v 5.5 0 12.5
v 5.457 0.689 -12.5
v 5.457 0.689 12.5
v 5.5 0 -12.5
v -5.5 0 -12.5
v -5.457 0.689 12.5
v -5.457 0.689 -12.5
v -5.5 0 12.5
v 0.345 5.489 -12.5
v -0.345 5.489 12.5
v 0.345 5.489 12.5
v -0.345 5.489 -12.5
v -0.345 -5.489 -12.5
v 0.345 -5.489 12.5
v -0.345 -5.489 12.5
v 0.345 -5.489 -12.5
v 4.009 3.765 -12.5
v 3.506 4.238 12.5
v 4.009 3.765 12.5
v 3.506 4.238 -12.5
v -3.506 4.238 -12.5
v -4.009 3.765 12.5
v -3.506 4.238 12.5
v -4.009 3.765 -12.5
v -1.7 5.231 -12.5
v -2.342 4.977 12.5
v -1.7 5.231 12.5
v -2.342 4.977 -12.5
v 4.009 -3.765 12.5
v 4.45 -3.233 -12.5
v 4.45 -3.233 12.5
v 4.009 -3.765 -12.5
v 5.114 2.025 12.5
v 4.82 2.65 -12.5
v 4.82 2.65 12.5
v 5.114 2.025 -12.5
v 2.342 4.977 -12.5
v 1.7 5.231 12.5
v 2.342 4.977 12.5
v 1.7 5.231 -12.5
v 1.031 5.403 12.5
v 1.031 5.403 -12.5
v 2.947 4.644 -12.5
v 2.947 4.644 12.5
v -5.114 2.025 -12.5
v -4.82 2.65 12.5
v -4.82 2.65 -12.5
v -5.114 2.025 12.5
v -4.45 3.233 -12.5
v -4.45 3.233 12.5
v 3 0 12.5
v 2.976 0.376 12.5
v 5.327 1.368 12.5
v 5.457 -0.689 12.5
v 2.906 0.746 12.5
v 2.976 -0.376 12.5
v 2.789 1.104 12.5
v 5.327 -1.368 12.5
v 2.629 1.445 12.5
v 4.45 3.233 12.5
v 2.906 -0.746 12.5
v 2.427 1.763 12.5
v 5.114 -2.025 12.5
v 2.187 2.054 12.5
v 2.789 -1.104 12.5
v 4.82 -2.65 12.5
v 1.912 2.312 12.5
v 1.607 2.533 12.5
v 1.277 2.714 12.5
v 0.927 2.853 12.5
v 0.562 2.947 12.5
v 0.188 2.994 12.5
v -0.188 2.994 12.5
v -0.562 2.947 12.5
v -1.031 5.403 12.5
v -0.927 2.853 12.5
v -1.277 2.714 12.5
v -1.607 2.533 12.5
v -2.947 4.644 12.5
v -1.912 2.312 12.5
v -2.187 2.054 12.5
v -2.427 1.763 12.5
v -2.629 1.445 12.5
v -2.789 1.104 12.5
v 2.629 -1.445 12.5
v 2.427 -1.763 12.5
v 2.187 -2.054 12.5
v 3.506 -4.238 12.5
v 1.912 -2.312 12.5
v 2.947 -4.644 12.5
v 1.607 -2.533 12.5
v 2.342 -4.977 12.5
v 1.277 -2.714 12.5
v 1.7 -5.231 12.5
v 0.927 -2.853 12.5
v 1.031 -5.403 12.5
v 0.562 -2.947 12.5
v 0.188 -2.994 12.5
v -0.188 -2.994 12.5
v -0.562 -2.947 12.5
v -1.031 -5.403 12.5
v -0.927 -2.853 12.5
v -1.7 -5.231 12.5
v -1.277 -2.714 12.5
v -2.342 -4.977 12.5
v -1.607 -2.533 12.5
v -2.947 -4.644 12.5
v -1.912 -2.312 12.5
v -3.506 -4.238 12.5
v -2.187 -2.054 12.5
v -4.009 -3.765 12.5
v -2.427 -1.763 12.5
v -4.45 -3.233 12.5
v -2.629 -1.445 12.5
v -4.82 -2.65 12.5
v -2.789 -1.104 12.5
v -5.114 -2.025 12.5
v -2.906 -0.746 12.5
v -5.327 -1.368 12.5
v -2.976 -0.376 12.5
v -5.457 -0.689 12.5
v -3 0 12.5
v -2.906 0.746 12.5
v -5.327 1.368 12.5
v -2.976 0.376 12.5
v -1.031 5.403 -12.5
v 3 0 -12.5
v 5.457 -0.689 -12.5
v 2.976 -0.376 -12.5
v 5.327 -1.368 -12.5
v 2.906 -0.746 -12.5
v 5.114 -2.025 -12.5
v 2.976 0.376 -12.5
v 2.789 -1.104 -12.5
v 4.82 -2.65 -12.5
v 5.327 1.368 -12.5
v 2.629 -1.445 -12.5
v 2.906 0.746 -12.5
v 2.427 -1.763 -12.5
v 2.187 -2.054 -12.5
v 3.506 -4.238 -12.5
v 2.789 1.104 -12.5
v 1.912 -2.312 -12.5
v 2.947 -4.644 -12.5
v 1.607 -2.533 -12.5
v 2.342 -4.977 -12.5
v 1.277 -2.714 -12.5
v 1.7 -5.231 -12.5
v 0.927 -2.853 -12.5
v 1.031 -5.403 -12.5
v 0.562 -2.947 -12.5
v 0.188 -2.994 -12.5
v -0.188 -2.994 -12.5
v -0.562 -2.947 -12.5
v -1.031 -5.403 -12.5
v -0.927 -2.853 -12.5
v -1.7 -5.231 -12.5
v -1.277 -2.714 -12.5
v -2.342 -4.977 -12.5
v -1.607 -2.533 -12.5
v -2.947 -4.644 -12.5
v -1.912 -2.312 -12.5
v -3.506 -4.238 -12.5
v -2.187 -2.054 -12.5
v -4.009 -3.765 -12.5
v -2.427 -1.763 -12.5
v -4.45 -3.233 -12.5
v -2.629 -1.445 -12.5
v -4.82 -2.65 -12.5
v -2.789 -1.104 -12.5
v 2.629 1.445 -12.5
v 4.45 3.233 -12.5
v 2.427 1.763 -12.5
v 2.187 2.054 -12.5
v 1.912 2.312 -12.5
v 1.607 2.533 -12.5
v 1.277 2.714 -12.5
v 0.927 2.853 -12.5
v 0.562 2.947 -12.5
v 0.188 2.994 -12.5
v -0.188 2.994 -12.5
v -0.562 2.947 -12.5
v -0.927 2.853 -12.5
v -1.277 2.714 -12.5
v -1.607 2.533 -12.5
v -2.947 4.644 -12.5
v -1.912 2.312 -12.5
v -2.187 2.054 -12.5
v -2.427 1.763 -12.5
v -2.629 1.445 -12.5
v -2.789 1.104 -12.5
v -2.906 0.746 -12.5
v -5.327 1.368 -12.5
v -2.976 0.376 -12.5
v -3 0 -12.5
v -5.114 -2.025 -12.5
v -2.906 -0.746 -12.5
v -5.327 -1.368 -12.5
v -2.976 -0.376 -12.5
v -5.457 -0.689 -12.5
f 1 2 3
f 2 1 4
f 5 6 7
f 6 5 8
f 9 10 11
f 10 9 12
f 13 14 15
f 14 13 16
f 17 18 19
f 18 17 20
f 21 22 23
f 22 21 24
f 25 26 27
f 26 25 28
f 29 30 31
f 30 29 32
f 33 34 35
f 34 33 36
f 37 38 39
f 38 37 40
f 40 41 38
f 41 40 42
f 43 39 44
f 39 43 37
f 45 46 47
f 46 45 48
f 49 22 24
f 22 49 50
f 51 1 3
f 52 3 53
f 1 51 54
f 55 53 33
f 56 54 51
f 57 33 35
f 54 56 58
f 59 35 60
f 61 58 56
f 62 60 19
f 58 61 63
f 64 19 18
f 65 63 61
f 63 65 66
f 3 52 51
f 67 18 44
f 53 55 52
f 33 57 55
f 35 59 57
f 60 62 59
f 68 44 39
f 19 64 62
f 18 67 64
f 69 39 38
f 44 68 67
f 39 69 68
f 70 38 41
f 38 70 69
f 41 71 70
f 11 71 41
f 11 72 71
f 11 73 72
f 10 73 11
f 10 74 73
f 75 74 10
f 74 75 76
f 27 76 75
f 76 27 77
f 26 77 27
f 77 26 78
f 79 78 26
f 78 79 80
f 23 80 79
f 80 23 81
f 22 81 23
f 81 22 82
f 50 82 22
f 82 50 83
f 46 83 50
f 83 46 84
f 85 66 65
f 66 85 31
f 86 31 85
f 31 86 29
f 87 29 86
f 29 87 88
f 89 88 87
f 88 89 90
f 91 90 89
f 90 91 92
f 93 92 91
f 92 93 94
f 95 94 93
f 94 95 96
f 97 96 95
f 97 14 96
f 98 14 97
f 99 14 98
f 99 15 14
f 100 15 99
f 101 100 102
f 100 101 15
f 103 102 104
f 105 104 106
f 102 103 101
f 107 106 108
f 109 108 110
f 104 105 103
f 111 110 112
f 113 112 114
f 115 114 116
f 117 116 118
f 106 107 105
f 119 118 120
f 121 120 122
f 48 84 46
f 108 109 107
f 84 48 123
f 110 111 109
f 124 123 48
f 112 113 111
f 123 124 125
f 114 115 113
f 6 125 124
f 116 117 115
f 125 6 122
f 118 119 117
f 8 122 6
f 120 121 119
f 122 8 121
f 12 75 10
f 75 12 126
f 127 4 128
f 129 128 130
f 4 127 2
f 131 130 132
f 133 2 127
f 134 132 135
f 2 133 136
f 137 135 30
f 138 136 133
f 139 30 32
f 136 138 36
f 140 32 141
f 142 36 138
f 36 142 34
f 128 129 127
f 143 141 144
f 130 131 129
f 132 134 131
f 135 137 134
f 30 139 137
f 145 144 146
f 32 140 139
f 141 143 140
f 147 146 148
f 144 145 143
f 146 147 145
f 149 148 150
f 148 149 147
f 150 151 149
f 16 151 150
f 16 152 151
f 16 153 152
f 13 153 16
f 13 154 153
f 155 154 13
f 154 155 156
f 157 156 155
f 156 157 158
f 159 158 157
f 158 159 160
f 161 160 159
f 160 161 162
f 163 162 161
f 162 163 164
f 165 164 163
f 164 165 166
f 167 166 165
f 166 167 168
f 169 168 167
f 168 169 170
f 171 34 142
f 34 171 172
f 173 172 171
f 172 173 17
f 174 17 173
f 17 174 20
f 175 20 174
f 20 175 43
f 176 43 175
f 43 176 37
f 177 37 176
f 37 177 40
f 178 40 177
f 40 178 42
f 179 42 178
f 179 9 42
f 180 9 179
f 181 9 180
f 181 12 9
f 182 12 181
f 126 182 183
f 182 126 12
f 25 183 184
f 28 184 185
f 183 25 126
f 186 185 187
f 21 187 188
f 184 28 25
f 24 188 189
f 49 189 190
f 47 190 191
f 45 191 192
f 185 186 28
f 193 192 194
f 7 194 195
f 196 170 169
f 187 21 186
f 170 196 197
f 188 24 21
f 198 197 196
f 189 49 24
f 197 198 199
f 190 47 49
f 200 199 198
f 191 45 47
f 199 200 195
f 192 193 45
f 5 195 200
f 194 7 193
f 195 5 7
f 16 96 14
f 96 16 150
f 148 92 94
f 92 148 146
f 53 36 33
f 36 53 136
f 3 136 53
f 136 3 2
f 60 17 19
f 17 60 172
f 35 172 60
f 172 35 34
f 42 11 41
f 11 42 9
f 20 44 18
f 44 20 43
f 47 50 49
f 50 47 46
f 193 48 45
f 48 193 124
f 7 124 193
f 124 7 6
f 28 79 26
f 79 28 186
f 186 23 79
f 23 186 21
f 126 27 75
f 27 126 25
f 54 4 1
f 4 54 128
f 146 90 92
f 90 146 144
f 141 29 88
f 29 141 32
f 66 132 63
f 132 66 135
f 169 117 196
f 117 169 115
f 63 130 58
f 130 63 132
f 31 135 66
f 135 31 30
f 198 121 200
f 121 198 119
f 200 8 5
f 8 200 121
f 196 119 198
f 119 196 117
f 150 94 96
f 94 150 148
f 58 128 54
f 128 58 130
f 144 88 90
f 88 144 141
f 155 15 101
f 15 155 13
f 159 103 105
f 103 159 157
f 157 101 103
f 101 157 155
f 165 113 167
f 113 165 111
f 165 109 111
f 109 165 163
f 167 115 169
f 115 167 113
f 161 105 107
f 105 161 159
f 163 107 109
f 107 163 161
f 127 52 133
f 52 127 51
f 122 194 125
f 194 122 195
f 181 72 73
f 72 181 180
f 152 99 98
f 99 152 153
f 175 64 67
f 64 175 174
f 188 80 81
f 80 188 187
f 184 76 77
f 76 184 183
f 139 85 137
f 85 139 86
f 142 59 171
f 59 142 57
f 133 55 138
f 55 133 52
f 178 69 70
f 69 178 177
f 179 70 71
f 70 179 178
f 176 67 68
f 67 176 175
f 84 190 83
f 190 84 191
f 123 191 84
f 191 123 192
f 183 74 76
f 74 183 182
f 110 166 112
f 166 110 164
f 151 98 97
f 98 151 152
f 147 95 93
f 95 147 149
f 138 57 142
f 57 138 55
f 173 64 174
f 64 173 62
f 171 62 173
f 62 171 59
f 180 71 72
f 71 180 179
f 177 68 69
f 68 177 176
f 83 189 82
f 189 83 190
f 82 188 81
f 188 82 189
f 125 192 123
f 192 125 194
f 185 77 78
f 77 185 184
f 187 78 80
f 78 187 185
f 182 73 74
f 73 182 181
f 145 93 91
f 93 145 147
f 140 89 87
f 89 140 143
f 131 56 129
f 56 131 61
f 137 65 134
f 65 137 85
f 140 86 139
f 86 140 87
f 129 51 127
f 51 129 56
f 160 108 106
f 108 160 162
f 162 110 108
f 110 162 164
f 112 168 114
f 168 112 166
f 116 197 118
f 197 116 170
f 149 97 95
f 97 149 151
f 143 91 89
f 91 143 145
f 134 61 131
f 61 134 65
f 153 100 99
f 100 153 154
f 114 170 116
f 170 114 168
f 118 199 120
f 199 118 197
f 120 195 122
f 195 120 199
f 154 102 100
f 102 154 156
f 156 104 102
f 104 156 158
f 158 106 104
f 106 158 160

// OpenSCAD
$fn = 50;


difference() {
	union() {
		translate(v = [0, 0, -12.5000000000]) {
			cylinder(h = 25, r = 5.5000000000);
		}
	}
	union() {
		translate(v = [0, 0, -100.0000000000]) {
			cylinder(h = 200, r = 3);
		}
	}
}
